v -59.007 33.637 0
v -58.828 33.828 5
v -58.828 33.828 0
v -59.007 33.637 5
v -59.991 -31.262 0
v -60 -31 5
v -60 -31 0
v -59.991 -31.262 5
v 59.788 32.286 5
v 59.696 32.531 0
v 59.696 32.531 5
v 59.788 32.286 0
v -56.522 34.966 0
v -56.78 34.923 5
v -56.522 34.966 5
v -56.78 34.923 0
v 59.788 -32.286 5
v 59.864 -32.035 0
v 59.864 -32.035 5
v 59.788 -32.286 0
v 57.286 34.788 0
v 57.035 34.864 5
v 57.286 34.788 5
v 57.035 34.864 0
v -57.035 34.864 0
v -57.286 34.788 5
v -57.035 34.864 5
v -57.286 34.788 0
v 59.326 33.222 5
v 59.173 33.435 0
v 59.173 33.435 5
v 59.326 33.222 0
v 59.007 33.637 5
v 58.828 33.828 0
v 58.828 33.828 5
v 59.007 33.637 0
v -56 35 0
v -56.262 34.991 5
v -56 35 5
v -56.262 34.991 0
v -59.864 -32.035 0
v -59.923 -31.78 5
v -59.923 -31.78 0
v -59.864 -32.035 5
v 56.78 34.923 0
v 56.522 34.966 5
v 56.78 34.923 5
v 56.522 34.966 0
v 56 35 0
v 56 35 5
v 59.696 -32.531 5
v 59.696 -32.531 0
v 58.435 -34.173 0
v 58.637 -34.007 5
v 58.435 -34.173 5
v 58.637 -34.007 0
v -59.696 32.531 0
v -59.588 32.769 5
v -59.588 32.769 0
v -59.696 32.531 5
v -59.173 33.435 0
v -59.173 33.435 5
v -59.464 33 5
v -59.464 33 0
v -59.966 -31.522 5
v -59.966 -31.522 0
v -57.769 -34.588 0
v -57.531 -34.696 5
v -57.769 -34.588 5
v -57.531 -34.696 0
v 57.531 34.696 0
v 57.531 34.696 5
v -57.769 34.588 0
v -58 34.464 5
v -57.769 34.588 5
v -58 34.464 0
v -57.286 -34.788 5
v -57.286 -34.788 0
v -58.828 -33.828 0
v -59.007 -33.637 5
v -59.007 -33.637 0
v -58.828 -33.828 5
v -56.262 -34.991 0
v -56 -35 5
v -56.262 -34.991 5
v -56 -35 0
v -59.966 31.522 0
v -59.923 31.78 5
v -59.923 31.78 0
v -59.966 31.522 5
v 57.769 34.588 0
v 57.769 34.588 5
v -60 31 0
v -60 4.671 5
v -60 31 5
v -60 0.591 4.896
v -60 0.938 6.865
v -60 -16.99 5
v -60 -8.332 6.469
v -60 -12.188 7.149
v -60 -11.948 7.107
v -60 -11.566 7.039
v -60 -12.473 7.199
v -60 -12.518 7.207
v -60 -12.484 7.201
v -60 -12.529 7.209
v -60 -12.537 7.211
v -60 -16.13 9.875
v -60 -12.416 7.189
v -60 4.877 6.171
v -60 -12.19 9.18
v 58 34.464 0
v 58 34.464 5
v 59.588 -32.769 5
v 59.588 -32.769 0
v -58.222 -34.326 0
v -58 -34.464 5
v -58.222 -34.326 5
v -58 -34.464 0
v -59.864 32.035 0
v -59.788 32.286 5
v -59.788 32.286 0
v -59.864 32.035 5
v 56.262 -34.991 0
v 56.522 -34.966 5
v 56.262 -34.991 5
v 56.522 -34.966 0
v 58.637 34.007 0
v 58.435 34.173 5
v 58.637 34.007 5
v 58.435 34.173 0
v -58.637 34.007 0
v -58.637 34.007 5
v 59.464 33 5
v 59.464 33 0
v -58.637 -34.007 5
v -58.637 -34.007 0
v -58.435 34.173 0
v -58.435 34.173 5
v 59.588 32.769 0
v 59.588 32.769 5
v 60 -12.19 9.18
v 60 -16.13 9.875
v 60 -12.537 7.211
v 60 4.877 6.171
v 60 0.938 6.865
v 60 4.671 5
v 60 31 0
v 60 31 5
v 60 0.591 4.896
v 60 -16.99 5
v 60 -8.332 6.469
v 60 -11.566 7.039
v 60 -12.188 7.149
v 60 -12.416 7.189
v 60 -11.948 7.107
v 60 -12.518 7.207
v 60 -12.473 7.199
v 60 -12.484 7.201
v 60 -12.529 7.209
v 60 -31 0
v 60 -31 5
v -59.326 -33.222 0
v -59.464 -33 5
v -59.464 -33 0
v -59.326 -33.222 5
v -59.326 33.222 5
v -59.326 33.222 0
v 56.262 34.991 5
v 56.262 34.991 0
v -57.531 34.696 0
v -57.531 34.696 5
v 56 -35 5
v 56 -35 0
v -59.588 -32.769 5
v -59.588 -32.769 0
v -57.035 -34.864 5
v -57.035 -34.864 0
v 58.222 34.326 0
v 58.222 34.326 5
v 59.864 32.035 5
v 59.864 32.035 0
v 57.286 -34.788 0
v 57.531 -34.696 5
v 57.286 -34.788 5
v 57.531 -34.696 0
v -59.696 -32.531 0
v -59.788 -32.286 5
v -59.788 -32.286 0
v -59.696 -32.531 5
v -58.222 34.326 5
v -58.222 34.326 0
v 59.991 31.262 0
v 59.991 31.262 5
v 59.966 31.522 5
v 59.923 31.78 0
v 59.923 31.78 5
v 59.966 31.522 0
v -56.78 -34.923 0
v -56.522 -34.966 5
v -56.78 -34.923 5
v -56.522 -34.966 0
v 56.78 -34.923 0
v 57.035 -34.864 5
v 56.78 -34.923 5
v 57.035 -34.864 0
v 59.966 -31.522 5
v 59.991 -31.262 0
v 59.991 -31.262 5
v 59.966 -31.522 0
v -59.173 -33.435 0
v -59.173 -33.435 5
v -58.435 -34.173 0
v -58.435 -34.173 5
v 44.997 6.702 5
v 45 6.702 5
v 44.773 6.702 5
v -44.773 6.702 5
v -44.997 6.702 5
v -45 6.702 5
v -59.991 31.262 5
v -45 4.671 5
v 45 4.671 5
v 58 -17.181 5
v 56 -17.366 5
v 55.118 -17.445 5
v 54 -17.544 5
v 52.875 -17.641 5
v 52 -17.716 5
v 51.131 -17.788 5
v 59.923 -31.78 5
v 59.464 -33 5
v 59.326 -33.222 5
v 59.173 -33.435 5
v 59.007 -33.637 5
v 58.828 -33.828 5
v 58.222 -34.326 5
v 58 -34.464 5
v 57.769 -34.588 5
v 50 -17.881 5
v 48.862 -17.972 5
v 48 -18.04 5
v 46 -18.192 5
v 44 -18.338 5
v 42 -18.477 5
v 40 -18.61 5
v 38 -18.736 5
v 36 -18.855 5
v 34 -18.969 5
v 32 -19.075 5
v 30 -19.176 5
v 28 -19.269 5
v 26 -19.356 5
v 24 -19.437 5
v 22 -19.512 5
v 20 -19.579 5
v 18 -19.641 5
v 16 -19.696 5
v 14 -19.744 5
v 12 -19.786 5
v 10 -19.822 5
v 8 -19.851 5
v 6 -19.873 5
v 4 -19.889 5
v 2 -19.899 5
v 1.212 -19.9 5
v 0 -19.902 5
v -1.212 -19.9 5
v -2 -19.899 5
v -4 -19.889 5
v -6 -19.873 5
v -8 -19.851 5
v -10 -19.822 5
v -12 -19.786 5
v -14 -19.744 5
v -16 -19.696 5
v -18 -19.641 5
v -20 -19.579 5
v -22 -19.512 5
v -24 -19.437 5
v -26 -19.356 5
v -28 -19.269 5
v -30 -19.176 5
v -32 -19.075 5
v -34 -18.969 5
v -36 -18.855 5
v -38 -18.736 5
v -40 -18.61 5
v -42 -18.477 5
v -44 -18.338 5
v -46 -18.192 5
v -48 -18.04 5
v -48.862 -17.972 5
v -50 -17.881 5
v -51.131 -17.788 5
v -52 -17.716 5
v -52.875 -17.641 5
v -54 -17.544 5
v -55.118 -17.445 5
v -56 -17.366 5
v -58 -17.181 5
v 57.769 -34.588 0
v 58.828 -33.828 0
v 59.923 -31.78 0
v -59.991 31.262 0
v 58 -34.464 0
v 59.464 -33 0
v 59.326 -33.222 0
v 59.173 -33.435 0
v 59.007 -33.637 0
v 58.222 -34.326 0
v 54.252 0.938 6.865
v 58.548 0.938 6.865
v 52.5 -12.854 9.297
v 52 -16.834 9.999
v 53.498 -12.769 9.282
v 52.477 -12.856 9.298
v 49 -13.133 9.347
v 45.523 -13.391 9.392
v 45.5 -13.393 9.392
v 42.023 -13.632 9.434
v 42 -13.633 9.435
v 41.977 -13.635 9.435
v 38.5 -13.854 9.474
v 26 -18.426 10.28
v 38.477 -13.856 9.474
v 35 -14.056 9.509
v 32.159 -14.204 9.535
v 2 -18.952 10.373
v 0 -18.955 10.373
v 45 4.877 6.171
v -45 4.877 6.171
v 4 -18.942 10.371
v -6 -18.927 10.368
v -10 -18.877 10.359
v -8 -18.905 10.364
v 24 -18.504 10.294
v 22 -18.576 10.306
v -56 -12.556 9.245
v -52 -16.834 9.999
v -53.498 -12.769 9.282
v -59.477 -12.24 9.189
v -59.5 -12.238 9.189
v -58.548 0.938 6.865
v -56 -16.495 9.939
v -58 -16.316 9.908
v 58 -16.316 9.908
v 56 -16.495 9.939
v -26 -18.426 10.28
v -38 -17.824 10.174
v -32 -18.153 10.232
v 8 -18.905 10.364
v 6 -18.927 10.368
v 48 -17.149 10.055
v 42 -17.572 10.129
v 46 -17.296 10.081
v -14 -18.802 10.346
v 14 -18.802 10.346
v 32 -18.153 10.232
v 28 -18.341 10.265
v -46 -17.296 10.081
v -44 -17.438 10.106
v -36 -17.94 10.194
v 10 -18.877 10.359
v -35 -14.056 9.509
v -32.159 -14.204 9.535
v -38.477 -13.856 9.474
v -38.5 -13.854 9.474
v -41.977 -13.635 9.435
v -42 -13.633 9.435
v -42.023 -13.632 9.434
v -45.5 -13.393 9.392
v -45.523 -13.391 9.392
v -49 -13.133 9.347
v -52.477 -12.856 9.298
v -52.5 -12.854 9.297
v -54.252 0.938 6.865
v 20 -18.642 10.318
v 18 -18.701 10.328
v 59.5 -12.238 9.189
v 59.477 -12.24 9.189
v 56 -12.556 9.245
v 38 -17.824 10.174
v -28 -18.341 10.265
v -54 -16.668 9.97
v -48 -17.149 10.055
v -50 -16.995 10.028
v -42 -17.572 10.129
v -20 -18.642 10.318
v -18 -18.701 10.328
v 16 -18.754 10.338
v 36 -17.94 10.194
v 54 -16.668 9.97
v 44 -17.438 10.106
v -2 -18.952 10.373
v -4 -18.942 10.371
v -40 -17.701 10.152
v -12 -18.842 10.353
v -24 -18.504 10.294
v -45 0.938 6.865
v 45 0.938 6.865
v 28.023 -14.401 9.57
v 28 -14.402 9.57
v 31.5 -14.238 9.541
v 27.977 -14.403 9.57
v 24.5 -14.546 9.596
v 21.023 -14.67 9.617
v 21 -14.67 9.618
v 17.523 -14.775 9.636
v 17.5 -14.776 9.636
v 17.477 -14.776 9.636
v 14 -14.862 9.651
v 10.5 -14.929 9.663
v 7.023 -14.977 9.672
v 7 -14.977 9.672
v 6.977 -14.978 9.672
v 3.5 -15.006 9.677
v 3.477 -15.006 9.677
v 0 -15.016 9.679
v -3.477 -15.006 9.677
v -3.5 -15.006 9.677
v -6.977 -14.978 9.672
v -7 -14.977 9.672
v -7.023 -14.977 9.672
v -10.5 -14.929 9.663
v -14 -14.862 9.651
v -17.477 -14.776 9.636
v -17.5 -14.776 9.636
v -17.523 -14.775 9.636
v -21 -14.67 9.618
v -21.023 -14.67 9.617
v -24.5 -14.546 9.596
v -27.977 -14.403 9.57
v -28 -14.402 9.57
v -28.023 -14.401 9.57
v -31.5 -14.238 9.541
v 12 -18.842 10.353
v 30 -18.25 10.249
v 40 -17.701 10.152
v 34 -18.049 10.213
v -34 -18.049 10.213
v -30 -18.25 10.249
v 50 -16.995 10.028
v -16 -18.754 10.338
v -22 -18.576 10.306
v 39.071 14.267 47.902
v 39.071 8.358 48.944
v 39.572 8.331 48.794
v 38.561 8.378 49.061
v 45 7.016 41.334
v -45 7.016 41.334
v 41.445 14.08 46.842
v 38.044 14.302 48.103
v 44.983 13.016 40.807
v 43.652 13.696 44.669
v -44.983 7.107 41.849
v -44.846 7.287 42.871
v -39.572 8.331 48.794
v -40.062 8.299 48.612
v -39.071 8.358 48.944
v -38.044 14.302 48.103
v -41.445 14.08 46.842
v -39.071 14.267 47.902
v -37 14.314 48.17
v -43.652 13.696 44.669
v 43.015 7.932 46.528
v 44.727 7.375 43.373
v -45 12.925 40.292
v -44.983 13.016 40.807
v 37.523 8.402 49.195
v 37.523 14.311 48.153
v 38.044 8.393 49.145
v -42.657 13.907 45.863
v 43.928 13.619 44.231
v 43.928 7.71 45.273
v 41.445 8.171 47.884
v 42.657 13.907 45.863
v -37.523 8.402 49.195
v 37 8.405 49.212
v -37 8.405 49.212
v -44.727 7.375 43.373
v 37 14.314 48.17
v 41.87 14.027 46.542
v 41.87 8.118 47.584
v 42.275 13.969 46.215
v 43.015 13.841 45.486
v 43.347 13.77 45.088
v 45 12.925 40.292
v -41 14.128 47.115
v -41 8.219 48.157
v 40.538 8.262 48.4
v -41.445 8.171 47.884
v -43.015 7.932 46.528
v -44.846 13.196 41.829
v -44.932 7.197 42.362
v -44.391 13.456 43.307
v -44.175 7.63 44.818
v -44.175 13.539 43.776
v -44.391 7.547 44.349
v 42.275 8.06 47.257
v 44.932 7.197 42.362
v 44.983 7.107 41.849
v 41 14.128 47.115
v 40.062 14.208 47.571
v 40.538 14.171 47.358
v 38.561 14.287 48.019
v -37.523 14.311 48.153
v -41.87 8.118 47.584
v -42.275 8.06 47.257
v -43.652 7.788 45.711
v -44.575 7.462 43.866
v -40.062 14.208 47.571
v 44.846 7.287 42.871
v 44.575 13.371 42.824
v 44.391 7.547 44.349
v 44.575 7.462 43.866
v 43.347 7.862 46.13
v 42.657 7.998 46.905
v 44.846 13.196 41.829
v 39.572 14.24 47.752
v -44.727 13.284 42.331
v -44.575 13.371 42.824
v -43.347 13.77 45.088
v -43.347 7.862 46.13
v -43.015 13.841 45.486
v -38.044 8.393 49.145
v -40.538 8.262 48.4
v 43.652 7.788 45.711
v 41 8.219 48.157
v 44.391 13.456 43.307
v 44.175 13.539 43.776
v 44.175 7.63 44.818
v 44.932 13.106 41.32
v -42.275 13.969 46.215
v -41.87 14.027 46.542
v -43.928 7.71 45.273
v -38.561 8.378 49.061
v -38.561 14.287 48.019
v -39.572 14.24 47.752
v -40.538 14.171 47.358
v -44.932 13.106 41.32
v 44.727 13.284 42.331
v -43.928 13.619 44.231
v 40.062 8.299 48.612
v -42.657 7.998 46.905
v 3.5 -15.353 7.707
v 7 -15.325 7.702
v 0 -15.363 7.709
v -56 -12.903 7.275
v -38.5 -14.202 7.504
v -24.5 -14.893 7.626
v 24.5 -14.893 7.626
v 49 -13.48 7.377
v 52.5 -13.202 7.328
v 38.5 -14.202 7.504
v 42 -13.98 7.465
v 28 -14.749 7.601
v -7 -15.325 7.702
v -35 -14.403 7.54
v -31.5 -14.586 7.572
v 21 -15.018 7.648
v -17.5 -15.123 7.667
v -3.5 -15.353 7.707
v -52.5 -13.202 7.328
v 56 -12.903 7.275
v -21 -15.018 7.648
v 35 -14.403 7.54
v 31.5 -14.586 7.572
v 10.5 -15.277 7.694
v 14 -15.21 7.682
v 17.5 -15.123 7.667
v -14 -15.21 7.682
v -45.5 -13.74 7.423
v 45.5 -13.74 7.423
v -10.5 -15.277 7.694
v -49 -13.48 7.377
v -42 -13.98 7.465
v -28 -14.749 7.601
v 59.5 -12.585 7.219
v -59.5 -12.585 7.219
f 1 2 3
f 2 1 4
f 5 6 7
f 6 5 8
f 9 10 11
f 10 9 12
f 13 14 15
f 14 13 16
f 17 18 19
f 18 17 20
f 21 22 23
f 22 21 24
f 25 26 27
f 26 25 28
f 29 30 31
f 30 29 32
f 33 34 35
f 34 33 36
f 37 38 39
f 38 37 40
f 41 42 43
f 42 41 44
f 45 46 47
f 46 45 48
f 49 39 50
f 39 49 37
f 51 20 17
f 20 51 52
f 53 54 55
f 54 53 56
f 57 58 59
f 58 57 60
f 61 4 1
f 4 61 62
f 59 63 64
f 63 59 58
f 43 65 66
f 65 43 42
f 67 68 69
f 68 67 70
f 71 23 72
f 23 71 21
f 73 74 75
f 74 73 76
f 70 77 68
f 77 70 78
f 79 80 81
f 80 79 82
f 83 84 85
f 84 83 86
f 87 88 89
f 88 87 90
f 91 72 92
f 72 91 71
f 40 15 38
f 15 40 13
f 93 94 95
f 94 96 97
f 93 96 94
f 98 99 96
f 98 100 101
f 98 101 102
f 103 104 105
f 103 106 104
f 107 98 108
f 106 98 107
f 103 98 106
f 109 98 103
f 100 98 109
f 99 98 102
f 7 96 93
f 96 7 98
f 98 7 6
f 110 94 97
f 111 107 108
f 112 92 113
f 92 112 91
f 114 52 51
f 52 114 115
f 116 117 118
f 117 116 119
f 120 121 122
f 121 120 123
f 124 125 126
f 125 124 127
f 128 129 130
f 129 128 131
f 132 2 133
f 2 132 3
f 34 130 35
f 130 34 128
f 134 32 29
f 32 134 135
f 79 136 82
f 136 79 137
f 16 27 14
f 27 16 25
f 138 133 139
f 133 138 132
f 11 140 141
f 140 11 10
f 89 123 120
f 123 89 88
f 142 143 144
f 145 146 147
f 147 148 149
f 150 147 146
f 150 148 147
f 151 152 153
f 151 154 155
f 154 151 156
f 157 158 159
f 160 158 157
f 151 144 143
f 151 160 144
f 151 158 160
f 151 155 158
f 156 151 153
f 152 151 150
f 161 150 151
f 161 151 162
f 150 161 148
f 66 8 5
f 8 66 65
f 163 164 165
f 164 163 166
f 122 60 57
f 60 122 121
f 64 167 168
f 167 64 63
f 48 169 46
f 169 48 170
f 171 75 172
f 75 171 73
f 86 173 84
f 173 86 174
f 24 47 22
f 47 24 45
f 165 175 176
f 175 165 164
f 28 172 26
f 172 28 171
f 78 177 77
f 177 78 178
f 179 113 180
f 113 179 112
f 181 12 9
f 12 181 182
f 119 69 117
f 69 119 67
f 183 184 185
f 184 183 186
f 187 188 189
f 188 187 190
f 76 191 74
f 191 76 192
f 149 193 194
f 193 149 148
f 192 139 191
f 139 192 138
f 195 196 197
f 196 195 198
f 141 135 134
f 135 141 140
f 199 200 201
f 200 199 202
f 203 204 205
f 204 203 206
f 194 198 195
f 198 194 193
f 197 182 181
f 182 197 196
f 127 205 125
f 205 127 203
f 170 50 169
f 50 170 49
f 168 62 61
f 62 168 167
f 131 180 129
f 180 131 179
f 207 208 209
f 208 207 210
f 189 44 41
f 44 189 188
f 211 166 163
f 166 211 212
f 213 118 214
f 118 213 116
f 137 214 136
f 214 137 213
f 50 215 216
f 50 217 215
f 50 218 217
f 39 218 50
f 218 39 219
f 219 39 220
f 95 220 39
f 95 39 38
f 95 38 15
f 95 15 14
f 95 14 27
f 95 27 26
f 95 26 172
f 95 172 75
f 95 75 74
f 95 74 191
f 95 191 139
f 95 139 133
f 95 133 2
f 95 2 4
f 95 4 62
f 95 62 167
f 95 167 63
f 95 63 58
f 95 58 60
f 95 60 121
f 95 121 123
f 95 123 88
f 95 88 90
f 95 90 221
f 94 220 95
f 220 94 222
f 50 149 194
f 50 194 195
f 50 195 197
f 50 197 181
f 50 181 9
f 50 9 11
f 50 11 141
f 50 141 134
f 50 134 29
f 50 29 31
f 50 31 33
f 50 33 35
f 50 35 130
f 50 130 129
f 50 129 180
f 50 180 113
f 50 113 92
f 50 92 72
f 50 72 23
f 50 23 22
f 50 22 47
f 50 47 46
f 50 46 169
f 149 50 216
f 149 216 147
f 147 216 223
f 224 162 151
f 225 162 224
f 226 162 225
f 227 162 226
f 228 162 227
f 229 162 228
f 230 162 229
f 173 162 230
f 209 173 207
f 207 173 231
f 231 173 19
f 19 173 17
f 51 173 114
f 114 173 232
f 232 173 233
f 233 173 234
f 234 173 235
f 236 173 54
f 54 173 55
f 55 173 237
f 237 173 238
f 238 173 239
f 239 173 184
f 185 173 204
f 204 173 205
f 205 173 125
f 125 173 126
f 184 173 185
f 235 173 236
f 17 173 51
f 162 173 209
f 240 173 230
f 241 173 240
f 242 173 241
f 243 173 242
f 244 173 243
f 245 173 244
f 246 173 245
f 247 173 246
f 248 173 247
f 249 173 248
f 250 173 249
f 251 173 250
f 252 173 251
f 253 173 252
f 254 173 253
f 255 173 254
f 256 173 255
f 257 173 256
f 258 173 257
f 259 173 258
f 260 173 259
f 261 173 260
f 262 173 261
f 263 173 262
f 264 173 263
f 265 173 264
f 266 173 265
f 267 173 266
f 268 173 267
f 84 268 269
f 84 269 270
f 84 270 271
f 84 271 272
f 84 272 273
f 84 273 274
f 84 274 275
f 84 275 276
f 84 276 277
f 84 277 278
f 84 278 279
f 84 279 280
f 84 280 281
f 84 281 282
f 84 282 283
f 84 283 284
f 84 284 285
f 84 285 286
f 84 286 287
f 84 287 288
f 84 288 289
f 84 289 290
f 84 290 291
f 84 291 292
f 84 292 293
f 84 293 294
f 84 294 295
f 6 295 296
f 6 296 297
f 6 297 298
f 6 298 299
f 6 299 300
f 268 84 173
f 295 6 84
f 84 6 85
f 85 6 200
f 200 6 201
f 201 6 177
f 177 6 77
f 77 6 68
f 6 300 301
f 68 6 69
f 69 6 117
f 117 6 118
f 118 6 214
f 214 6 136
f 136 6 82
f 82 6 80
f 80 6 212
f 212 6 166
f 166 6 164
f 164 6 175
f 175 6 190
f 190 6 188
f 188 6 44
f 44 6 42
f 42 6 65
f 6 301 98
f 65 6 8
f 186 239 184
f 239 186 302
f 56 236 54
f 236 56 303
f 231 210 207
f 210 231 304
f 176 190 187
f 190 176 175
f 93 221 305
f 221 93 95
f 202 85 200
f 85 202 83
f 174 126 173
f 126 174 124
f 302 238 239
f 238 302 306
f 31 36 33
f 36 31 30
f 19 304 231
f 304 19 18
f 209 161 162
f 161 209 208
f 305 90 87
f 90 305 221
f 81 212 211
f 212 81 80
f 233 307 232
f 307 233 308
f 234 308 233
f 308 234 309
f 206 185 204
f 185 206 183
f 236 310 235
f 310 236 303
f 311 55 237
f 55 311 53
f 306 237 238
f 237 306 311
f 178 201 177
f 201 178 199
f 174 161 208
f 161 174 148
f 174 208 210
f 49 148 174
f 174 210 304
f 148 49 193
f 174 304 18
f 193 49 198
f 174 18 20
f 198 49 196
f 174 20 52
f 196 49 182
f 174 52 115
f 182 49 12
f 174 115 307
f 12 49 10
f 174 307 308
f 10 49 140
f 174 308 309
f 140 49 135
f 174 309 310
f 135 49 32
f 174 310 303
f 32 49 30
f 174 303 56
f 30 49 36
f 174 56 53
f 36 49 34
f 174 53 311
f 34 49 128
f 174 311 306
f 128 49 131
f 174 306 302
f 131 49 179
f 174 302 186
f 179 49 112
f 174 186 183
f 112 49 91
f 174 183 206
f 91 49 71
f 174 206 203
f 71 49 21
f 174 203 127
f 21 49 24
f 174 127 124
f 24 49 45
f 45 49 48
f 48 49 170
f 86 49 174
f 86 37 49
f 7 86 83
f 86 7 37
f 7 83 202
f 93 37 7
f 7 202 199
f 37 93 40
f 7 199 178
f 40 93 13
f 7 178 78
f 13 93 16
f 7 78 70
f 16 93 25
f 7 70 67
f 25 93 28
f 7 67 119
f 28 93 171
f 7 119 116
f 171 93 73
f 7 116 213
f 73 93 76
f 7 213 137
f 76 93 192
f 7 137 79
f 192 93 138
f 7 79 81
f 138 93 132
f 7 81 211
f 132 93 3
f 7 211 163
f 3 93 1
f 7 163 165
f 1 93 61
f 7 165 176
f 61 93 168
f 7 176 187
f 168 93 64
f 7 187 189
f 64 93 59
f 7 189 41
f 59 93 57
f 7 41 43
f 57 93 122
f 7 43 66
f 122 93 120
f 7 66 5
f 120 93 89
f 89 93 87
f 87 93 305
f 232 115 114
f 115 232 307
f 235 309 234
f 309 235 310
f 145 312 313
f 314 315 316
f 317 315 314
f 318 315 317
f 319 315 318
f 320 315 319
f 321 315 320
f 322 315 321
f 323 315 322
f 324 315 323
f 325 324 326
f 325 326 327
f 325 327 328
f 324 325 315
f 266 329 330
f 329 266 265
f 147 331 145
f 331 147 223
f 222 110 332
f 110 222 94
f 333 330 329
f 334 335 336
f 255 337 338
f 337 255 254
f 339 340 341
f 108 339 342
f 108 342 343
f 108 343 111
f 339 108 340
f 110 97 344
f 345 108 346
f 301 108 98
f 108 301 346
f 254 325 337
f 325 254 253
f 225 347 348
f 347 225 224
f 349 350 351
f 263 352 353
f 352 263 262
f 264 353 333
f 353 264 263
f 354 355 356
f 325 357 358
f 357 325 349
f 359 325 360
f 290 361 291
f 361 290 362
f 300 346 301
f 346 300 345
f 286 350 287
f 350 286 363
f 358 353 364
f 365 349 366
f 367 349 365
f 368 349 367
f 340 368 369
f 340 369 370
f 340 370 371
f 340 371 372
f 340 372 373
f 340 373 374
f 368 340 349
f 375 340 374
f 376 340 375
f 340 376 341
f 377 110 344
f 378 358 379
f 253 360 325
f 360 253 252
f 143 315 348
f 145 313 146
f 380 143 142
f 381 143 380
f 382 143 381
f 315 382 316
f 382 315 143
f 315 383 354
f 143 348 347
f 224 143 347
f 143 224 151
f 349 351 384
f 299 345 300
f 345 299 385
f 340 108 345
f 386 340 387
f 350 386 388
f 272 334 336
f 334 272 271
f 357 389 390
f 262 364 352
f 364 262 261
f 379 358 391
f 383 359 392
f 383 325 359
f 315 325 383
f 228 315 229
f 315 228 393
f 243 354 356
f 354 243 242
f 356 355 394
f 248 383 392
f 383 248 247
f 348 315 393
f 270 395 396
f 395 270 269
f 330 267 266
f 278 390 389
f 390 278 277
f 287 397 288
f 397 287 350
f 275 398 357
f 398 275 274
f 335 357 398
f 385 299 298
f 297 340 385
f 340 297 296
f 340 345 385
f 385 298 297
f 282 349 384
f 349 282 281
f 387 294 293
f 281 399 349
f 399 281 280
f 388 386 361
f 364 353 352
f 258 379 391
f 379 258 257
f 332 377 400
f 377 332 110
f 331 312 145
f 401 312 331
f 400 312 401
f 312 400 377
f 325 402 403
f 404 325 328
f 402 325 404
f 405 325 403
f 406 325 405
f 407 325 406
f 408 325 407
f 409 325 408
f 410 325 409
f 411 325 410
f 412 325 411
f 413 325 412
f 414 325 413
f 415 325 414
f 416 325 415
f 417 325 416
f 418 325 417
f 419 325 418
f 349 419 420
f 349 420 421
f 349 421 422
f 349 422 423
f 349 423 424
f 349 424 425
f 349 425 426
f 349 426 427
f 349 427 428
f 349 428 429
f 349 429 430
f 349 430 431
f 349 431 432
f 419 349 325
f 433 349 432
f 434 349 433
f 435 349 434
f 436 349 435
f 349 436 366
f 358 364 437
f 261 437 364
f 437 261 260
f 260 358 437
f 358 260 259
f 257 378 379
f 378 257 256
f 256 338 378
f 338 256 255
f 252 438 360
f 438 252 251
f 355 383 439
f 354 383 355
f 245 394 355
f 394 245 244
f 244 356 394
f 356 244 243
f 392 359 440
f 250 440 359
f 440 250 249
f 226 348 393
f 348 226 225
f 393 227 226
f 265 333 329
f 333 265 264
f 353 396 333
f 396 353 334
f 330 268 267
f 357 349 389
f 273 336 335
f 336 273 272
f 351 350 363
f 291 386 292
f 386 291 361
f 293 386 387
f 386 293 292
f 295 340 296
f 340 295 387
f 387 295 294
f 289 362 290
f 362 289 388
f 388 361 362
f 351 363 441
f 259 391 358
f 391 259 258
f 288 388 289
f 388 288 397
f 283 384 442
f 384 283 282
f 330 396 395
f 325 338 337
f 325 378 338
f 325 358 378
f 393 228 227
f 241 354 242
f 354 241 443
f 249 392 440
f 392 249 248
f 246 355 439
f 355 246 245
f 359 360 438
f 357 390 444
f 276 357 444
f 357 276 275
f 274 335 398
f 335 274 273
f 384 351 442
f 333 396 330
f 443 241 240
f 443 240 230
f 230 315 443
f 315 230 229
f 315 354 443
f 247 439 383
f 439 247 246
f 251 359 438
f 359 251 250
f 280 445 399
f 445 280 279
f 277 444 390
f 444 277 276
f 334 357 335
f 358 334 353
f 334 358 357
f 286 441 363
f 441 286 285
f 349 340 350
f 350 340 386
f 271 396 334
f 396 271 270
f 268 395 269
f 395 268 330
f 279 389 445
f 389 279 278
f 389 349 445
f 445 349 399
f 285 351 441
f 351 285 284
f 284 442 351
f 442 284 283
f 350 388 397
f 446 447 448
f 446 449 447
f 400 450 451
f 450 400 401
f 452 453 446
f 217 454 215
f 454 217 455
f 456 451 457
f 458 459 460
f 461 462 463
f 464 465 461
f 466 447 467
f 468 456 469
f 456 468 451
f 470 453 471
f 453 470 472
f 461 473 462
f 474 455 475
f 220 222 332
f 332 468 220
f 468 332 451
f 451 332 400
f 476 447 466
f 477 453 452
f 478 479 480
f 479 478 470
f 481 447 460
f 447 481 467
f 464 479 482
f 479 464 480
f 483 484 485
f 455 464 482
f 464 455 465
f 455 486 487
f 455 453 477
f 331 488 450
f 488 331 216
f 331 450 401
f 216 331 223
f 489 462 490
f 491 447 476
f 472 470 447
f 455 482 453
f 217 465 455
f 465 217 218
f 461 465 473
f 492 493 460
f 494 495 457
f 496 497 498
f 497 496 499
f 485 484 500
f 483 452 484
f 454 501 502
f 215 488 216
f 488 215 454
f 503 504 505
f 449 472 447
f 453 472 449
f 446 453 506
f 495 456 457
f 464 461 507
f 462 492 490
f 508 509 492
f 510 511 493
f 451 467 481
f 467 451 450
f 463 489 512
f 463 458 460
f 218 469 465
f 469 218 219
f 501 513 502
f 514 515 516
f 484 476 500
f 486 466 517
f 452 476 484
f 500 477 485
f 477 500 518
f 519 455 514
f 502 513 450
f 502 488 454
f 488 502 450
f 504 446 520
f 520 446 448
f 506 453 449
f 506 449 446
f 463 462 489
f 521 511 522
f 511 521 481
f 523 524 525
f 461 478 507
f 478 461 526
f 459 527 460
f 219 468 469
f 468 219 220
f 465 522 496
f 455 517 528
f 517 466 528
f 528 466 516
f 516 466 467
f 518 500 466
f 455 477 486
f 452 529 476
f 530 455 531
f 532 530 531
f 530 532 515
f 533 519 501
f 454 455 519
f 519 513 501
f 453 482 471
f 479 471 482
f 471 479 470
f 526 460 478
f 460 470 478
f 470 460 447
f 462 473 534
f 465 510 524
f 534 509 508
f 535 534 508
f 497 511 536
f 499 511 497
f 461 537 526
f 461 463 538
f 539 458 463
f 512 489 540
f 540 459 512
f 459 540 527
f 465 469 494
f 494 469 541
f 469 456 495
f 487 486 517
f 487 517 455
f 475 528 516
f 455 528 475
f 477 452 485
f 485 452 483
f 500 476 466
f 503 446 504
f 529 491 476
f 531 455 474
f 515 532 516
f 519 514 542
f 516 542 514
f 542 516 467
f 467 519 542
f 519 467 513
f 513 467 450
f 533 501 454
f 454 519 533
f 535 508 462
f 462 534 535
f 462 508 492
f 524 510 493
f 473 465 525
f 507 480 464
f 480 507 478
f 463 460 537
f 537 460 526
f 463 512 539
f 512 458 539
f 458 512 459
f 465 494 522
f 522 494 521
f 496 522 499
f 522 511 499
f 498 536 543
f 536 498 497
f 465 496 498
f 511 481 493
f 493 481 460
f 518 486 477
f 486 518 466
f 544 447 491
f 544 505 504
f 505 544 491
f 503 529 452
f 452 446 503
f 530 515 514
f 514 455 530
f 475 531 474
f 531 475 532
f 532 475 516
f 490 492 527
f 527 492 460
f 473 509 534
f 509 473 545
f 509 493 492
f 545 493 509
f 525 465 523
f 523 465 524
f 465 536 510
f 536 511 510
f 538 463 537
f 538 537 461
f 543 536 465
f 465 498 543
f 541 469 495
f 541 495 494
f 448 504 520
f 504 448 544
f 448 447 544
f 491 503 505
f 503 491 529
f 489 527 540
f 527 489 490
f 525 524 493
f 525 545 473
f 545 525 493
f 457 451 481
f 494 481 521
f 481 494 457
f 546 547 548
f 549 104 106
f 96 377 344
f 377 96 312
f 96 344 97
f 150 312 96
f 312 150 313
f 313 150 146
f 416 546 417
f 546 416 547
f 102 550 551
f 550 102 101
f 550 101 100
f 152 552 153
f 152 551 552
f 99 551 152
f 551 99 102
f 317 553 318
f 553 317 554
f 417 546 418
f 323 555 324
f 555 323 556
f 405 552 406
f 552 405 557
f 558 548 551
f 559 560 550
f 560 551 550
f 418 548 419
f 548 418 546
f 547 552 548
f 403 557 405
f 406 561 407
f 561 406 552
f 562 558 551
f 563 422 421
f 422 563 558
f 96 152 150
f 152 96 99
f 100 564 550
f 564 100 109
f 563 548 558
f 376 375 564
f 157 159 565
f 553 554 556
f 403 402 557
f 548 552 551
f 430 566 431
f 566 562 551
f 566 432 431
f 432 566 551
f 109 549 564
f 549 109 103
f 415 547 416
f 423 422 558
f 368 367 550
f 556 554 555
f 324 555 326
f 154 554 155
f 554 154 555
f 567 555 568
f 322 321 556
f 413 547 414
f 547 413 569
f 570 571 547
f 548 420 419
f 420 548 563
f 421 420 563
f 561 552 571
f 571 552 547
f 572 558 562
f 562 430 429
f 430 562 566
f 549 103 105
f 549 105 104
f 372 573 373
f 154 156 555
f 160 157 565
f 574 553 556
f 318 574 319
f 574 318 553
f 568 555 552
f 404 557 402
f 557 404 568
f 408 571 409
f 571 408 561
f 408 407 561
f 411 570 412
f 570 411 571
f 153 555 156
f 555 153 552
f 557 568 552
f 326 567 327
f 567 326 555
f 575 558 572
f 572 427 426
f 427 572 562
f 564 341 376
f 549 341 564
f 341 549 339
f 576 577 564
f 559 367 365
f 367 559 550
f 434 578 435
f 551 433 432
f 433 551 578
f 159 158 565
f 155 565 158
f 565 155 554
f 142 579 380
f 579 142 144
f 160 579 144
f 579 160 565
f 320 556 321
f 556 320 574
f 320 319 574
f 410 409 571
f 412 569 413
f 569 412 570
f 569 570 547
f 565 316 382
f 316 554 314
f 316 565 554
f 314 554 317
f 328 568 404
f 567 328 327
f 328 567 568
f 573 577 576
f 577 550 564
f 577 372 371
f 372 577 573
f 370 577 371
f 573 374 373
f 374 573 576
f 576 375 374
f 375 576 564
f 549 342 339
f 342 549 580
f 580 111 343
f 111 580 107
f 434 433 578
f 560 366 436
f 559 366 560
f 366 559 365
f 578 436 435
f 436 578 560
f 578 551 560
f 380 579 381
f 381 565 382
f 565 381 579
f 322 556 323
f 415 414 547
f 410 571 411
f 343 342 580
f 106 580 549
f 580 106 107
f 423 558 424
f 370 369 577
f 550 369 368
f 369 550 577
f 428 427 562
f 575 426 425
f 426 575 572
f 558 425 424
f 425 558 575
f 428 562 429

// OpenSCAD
// ============================================================================
//  Standaard voor gedenkplaat (Roc du Maroc Finisher)
//  Plaat: 200 mm breed, ~140 mm hoog, achterkant vlak,
//         voorkant bol: 15 mm dik in het midden -> 7 mm aan de zijkanten (boog).
//  Standaard: 120 mm breed, plaat leunt 10 graden achterover.
//  Printer: FlashForge Adventurer 4 · PLA/PETG · 0.2 mm · 3 wanden · 20% infill
//  Printoriëntatie: zo, plat op de onderkant. Geen support nodig.
// ============================================================================

/* [Plaat] */
plaat_breedte   = 200;   // mm
plaat_dik_mid   = 15;    // dikte in het midden
plaat_dik_rand  = 7;     // dikte aan de zijkant (op 100 mm van het midden)
speling         = 0.6;   // ruimte rondom de plaat in de gleuf

/* [Standaard] */
breedte         = 120;   // totale breedte
hoek            = 10;    // graden achterover
voet_diepte     = 70;    // voor-achter
voet_h          = 5;     // dikte voetplaat (= bodem van de gleuf)
lip_h           = 2;     // hoogte voorste lip boven de gleufbodem (letters staan op 2,5 mm van de onderrand)
lip_wand        = 4;     // dikte voorste lip
rug_h           = 45;    // hoogte achtersteun boven de gleufbodem
rug_dik         = 6;
rug_breedte     = 90;
afronding       = 4;

$fn = 96;

// Boog van de voorkant: cirkel door (0, mid) en (±b/2, rand)
half   = plaat_breedte / 2;
sag    = plaat_dik_mid - plaat_dik_rand;
R      = (half*half + sag*sag) / (2*sag);
cy     = plaat_dik_mid - R;
function dik(x) = sqrt(R*R - x*x) + cy;

echo(str("Plaatdikte aan rand standaard (x=±", breedte/2, "): ", dik(breedte/2), " mm"));

// 2D-doorsnede van de plaat (bovenaanzicht): achterkant op y=0, voorkant naar -y
module plaat_2d(extra=0, xmax=half) {
    stappen = 60;
    pts_voor = [for (i=[0:stappen]) let(x = -xmax + 2*xmax*i/stappen) [x, -(dik(x) + extra)]];
    pts_achter = [[xmax, extra], [-xmax, extra]];
    polygon(concat(pts_voor, pts_achter));
}

// Alles in het "plaatframe": oorsprong = achterkant plaat, op gleufbodem; daarna gekanteld
module kantel() {
    translate([0, 0, voet_h]) rotate([-hoek, 0, 0]) children();
}

module afgerond_blok(b, d, h, r) {
    hull() for (sx=[-1,1], sy=[-1,1])
        translate([sx*(b/2-r), sy*(d/2-r), 0]) cylinder(h=h, r=r);
}

module standaard() {
    difference() {
        intersection() {
            union() {
                // Voetplaat
                translate([0, 0, 0]) afgerond_blok(breedte, voet_diepte, voet_h, afronding);
                // Voorste lip die de boog volgt
                kantel() translate([0,0,-voet_h-2])
                    linear_extrude(lip_h + voet_h + 2)
                        plaat_2d(extra = speling + lip_wand, xmax = breedte/2);
                // Achtersteun met afgeronde bovenhoeken
                kantel() translate([0, speling, -voet_h-2])
                    hull() {
                        translate([-rug_breedte/2, 0, 0]) cube([rug_breedte, rug_dik, 1]);
                        for (sx=[-1,1])
                            translate([sx*(rug_breedte/2 - 8), 0, rug_h + voet_h + 2 - 8])
                                rotate([-90,0,0]) cylinder(h=rug_dik, r=8);
                    }
            }
            // Niets onder de tafel en niet breder dan de standaard
            translate([-breedte/2, -voet_diepte/2, 0]) cube([breedte, voet_diepte, 200]);
        }
        // De gleuf zelf
        kantel() linear_extrude(300) plaat_2d(extra = speling, xmax = half + 5);
    }
}

// Voet loopt 35 mm voor en achter de plaat: stabiel bij 10 graden
standaard();
